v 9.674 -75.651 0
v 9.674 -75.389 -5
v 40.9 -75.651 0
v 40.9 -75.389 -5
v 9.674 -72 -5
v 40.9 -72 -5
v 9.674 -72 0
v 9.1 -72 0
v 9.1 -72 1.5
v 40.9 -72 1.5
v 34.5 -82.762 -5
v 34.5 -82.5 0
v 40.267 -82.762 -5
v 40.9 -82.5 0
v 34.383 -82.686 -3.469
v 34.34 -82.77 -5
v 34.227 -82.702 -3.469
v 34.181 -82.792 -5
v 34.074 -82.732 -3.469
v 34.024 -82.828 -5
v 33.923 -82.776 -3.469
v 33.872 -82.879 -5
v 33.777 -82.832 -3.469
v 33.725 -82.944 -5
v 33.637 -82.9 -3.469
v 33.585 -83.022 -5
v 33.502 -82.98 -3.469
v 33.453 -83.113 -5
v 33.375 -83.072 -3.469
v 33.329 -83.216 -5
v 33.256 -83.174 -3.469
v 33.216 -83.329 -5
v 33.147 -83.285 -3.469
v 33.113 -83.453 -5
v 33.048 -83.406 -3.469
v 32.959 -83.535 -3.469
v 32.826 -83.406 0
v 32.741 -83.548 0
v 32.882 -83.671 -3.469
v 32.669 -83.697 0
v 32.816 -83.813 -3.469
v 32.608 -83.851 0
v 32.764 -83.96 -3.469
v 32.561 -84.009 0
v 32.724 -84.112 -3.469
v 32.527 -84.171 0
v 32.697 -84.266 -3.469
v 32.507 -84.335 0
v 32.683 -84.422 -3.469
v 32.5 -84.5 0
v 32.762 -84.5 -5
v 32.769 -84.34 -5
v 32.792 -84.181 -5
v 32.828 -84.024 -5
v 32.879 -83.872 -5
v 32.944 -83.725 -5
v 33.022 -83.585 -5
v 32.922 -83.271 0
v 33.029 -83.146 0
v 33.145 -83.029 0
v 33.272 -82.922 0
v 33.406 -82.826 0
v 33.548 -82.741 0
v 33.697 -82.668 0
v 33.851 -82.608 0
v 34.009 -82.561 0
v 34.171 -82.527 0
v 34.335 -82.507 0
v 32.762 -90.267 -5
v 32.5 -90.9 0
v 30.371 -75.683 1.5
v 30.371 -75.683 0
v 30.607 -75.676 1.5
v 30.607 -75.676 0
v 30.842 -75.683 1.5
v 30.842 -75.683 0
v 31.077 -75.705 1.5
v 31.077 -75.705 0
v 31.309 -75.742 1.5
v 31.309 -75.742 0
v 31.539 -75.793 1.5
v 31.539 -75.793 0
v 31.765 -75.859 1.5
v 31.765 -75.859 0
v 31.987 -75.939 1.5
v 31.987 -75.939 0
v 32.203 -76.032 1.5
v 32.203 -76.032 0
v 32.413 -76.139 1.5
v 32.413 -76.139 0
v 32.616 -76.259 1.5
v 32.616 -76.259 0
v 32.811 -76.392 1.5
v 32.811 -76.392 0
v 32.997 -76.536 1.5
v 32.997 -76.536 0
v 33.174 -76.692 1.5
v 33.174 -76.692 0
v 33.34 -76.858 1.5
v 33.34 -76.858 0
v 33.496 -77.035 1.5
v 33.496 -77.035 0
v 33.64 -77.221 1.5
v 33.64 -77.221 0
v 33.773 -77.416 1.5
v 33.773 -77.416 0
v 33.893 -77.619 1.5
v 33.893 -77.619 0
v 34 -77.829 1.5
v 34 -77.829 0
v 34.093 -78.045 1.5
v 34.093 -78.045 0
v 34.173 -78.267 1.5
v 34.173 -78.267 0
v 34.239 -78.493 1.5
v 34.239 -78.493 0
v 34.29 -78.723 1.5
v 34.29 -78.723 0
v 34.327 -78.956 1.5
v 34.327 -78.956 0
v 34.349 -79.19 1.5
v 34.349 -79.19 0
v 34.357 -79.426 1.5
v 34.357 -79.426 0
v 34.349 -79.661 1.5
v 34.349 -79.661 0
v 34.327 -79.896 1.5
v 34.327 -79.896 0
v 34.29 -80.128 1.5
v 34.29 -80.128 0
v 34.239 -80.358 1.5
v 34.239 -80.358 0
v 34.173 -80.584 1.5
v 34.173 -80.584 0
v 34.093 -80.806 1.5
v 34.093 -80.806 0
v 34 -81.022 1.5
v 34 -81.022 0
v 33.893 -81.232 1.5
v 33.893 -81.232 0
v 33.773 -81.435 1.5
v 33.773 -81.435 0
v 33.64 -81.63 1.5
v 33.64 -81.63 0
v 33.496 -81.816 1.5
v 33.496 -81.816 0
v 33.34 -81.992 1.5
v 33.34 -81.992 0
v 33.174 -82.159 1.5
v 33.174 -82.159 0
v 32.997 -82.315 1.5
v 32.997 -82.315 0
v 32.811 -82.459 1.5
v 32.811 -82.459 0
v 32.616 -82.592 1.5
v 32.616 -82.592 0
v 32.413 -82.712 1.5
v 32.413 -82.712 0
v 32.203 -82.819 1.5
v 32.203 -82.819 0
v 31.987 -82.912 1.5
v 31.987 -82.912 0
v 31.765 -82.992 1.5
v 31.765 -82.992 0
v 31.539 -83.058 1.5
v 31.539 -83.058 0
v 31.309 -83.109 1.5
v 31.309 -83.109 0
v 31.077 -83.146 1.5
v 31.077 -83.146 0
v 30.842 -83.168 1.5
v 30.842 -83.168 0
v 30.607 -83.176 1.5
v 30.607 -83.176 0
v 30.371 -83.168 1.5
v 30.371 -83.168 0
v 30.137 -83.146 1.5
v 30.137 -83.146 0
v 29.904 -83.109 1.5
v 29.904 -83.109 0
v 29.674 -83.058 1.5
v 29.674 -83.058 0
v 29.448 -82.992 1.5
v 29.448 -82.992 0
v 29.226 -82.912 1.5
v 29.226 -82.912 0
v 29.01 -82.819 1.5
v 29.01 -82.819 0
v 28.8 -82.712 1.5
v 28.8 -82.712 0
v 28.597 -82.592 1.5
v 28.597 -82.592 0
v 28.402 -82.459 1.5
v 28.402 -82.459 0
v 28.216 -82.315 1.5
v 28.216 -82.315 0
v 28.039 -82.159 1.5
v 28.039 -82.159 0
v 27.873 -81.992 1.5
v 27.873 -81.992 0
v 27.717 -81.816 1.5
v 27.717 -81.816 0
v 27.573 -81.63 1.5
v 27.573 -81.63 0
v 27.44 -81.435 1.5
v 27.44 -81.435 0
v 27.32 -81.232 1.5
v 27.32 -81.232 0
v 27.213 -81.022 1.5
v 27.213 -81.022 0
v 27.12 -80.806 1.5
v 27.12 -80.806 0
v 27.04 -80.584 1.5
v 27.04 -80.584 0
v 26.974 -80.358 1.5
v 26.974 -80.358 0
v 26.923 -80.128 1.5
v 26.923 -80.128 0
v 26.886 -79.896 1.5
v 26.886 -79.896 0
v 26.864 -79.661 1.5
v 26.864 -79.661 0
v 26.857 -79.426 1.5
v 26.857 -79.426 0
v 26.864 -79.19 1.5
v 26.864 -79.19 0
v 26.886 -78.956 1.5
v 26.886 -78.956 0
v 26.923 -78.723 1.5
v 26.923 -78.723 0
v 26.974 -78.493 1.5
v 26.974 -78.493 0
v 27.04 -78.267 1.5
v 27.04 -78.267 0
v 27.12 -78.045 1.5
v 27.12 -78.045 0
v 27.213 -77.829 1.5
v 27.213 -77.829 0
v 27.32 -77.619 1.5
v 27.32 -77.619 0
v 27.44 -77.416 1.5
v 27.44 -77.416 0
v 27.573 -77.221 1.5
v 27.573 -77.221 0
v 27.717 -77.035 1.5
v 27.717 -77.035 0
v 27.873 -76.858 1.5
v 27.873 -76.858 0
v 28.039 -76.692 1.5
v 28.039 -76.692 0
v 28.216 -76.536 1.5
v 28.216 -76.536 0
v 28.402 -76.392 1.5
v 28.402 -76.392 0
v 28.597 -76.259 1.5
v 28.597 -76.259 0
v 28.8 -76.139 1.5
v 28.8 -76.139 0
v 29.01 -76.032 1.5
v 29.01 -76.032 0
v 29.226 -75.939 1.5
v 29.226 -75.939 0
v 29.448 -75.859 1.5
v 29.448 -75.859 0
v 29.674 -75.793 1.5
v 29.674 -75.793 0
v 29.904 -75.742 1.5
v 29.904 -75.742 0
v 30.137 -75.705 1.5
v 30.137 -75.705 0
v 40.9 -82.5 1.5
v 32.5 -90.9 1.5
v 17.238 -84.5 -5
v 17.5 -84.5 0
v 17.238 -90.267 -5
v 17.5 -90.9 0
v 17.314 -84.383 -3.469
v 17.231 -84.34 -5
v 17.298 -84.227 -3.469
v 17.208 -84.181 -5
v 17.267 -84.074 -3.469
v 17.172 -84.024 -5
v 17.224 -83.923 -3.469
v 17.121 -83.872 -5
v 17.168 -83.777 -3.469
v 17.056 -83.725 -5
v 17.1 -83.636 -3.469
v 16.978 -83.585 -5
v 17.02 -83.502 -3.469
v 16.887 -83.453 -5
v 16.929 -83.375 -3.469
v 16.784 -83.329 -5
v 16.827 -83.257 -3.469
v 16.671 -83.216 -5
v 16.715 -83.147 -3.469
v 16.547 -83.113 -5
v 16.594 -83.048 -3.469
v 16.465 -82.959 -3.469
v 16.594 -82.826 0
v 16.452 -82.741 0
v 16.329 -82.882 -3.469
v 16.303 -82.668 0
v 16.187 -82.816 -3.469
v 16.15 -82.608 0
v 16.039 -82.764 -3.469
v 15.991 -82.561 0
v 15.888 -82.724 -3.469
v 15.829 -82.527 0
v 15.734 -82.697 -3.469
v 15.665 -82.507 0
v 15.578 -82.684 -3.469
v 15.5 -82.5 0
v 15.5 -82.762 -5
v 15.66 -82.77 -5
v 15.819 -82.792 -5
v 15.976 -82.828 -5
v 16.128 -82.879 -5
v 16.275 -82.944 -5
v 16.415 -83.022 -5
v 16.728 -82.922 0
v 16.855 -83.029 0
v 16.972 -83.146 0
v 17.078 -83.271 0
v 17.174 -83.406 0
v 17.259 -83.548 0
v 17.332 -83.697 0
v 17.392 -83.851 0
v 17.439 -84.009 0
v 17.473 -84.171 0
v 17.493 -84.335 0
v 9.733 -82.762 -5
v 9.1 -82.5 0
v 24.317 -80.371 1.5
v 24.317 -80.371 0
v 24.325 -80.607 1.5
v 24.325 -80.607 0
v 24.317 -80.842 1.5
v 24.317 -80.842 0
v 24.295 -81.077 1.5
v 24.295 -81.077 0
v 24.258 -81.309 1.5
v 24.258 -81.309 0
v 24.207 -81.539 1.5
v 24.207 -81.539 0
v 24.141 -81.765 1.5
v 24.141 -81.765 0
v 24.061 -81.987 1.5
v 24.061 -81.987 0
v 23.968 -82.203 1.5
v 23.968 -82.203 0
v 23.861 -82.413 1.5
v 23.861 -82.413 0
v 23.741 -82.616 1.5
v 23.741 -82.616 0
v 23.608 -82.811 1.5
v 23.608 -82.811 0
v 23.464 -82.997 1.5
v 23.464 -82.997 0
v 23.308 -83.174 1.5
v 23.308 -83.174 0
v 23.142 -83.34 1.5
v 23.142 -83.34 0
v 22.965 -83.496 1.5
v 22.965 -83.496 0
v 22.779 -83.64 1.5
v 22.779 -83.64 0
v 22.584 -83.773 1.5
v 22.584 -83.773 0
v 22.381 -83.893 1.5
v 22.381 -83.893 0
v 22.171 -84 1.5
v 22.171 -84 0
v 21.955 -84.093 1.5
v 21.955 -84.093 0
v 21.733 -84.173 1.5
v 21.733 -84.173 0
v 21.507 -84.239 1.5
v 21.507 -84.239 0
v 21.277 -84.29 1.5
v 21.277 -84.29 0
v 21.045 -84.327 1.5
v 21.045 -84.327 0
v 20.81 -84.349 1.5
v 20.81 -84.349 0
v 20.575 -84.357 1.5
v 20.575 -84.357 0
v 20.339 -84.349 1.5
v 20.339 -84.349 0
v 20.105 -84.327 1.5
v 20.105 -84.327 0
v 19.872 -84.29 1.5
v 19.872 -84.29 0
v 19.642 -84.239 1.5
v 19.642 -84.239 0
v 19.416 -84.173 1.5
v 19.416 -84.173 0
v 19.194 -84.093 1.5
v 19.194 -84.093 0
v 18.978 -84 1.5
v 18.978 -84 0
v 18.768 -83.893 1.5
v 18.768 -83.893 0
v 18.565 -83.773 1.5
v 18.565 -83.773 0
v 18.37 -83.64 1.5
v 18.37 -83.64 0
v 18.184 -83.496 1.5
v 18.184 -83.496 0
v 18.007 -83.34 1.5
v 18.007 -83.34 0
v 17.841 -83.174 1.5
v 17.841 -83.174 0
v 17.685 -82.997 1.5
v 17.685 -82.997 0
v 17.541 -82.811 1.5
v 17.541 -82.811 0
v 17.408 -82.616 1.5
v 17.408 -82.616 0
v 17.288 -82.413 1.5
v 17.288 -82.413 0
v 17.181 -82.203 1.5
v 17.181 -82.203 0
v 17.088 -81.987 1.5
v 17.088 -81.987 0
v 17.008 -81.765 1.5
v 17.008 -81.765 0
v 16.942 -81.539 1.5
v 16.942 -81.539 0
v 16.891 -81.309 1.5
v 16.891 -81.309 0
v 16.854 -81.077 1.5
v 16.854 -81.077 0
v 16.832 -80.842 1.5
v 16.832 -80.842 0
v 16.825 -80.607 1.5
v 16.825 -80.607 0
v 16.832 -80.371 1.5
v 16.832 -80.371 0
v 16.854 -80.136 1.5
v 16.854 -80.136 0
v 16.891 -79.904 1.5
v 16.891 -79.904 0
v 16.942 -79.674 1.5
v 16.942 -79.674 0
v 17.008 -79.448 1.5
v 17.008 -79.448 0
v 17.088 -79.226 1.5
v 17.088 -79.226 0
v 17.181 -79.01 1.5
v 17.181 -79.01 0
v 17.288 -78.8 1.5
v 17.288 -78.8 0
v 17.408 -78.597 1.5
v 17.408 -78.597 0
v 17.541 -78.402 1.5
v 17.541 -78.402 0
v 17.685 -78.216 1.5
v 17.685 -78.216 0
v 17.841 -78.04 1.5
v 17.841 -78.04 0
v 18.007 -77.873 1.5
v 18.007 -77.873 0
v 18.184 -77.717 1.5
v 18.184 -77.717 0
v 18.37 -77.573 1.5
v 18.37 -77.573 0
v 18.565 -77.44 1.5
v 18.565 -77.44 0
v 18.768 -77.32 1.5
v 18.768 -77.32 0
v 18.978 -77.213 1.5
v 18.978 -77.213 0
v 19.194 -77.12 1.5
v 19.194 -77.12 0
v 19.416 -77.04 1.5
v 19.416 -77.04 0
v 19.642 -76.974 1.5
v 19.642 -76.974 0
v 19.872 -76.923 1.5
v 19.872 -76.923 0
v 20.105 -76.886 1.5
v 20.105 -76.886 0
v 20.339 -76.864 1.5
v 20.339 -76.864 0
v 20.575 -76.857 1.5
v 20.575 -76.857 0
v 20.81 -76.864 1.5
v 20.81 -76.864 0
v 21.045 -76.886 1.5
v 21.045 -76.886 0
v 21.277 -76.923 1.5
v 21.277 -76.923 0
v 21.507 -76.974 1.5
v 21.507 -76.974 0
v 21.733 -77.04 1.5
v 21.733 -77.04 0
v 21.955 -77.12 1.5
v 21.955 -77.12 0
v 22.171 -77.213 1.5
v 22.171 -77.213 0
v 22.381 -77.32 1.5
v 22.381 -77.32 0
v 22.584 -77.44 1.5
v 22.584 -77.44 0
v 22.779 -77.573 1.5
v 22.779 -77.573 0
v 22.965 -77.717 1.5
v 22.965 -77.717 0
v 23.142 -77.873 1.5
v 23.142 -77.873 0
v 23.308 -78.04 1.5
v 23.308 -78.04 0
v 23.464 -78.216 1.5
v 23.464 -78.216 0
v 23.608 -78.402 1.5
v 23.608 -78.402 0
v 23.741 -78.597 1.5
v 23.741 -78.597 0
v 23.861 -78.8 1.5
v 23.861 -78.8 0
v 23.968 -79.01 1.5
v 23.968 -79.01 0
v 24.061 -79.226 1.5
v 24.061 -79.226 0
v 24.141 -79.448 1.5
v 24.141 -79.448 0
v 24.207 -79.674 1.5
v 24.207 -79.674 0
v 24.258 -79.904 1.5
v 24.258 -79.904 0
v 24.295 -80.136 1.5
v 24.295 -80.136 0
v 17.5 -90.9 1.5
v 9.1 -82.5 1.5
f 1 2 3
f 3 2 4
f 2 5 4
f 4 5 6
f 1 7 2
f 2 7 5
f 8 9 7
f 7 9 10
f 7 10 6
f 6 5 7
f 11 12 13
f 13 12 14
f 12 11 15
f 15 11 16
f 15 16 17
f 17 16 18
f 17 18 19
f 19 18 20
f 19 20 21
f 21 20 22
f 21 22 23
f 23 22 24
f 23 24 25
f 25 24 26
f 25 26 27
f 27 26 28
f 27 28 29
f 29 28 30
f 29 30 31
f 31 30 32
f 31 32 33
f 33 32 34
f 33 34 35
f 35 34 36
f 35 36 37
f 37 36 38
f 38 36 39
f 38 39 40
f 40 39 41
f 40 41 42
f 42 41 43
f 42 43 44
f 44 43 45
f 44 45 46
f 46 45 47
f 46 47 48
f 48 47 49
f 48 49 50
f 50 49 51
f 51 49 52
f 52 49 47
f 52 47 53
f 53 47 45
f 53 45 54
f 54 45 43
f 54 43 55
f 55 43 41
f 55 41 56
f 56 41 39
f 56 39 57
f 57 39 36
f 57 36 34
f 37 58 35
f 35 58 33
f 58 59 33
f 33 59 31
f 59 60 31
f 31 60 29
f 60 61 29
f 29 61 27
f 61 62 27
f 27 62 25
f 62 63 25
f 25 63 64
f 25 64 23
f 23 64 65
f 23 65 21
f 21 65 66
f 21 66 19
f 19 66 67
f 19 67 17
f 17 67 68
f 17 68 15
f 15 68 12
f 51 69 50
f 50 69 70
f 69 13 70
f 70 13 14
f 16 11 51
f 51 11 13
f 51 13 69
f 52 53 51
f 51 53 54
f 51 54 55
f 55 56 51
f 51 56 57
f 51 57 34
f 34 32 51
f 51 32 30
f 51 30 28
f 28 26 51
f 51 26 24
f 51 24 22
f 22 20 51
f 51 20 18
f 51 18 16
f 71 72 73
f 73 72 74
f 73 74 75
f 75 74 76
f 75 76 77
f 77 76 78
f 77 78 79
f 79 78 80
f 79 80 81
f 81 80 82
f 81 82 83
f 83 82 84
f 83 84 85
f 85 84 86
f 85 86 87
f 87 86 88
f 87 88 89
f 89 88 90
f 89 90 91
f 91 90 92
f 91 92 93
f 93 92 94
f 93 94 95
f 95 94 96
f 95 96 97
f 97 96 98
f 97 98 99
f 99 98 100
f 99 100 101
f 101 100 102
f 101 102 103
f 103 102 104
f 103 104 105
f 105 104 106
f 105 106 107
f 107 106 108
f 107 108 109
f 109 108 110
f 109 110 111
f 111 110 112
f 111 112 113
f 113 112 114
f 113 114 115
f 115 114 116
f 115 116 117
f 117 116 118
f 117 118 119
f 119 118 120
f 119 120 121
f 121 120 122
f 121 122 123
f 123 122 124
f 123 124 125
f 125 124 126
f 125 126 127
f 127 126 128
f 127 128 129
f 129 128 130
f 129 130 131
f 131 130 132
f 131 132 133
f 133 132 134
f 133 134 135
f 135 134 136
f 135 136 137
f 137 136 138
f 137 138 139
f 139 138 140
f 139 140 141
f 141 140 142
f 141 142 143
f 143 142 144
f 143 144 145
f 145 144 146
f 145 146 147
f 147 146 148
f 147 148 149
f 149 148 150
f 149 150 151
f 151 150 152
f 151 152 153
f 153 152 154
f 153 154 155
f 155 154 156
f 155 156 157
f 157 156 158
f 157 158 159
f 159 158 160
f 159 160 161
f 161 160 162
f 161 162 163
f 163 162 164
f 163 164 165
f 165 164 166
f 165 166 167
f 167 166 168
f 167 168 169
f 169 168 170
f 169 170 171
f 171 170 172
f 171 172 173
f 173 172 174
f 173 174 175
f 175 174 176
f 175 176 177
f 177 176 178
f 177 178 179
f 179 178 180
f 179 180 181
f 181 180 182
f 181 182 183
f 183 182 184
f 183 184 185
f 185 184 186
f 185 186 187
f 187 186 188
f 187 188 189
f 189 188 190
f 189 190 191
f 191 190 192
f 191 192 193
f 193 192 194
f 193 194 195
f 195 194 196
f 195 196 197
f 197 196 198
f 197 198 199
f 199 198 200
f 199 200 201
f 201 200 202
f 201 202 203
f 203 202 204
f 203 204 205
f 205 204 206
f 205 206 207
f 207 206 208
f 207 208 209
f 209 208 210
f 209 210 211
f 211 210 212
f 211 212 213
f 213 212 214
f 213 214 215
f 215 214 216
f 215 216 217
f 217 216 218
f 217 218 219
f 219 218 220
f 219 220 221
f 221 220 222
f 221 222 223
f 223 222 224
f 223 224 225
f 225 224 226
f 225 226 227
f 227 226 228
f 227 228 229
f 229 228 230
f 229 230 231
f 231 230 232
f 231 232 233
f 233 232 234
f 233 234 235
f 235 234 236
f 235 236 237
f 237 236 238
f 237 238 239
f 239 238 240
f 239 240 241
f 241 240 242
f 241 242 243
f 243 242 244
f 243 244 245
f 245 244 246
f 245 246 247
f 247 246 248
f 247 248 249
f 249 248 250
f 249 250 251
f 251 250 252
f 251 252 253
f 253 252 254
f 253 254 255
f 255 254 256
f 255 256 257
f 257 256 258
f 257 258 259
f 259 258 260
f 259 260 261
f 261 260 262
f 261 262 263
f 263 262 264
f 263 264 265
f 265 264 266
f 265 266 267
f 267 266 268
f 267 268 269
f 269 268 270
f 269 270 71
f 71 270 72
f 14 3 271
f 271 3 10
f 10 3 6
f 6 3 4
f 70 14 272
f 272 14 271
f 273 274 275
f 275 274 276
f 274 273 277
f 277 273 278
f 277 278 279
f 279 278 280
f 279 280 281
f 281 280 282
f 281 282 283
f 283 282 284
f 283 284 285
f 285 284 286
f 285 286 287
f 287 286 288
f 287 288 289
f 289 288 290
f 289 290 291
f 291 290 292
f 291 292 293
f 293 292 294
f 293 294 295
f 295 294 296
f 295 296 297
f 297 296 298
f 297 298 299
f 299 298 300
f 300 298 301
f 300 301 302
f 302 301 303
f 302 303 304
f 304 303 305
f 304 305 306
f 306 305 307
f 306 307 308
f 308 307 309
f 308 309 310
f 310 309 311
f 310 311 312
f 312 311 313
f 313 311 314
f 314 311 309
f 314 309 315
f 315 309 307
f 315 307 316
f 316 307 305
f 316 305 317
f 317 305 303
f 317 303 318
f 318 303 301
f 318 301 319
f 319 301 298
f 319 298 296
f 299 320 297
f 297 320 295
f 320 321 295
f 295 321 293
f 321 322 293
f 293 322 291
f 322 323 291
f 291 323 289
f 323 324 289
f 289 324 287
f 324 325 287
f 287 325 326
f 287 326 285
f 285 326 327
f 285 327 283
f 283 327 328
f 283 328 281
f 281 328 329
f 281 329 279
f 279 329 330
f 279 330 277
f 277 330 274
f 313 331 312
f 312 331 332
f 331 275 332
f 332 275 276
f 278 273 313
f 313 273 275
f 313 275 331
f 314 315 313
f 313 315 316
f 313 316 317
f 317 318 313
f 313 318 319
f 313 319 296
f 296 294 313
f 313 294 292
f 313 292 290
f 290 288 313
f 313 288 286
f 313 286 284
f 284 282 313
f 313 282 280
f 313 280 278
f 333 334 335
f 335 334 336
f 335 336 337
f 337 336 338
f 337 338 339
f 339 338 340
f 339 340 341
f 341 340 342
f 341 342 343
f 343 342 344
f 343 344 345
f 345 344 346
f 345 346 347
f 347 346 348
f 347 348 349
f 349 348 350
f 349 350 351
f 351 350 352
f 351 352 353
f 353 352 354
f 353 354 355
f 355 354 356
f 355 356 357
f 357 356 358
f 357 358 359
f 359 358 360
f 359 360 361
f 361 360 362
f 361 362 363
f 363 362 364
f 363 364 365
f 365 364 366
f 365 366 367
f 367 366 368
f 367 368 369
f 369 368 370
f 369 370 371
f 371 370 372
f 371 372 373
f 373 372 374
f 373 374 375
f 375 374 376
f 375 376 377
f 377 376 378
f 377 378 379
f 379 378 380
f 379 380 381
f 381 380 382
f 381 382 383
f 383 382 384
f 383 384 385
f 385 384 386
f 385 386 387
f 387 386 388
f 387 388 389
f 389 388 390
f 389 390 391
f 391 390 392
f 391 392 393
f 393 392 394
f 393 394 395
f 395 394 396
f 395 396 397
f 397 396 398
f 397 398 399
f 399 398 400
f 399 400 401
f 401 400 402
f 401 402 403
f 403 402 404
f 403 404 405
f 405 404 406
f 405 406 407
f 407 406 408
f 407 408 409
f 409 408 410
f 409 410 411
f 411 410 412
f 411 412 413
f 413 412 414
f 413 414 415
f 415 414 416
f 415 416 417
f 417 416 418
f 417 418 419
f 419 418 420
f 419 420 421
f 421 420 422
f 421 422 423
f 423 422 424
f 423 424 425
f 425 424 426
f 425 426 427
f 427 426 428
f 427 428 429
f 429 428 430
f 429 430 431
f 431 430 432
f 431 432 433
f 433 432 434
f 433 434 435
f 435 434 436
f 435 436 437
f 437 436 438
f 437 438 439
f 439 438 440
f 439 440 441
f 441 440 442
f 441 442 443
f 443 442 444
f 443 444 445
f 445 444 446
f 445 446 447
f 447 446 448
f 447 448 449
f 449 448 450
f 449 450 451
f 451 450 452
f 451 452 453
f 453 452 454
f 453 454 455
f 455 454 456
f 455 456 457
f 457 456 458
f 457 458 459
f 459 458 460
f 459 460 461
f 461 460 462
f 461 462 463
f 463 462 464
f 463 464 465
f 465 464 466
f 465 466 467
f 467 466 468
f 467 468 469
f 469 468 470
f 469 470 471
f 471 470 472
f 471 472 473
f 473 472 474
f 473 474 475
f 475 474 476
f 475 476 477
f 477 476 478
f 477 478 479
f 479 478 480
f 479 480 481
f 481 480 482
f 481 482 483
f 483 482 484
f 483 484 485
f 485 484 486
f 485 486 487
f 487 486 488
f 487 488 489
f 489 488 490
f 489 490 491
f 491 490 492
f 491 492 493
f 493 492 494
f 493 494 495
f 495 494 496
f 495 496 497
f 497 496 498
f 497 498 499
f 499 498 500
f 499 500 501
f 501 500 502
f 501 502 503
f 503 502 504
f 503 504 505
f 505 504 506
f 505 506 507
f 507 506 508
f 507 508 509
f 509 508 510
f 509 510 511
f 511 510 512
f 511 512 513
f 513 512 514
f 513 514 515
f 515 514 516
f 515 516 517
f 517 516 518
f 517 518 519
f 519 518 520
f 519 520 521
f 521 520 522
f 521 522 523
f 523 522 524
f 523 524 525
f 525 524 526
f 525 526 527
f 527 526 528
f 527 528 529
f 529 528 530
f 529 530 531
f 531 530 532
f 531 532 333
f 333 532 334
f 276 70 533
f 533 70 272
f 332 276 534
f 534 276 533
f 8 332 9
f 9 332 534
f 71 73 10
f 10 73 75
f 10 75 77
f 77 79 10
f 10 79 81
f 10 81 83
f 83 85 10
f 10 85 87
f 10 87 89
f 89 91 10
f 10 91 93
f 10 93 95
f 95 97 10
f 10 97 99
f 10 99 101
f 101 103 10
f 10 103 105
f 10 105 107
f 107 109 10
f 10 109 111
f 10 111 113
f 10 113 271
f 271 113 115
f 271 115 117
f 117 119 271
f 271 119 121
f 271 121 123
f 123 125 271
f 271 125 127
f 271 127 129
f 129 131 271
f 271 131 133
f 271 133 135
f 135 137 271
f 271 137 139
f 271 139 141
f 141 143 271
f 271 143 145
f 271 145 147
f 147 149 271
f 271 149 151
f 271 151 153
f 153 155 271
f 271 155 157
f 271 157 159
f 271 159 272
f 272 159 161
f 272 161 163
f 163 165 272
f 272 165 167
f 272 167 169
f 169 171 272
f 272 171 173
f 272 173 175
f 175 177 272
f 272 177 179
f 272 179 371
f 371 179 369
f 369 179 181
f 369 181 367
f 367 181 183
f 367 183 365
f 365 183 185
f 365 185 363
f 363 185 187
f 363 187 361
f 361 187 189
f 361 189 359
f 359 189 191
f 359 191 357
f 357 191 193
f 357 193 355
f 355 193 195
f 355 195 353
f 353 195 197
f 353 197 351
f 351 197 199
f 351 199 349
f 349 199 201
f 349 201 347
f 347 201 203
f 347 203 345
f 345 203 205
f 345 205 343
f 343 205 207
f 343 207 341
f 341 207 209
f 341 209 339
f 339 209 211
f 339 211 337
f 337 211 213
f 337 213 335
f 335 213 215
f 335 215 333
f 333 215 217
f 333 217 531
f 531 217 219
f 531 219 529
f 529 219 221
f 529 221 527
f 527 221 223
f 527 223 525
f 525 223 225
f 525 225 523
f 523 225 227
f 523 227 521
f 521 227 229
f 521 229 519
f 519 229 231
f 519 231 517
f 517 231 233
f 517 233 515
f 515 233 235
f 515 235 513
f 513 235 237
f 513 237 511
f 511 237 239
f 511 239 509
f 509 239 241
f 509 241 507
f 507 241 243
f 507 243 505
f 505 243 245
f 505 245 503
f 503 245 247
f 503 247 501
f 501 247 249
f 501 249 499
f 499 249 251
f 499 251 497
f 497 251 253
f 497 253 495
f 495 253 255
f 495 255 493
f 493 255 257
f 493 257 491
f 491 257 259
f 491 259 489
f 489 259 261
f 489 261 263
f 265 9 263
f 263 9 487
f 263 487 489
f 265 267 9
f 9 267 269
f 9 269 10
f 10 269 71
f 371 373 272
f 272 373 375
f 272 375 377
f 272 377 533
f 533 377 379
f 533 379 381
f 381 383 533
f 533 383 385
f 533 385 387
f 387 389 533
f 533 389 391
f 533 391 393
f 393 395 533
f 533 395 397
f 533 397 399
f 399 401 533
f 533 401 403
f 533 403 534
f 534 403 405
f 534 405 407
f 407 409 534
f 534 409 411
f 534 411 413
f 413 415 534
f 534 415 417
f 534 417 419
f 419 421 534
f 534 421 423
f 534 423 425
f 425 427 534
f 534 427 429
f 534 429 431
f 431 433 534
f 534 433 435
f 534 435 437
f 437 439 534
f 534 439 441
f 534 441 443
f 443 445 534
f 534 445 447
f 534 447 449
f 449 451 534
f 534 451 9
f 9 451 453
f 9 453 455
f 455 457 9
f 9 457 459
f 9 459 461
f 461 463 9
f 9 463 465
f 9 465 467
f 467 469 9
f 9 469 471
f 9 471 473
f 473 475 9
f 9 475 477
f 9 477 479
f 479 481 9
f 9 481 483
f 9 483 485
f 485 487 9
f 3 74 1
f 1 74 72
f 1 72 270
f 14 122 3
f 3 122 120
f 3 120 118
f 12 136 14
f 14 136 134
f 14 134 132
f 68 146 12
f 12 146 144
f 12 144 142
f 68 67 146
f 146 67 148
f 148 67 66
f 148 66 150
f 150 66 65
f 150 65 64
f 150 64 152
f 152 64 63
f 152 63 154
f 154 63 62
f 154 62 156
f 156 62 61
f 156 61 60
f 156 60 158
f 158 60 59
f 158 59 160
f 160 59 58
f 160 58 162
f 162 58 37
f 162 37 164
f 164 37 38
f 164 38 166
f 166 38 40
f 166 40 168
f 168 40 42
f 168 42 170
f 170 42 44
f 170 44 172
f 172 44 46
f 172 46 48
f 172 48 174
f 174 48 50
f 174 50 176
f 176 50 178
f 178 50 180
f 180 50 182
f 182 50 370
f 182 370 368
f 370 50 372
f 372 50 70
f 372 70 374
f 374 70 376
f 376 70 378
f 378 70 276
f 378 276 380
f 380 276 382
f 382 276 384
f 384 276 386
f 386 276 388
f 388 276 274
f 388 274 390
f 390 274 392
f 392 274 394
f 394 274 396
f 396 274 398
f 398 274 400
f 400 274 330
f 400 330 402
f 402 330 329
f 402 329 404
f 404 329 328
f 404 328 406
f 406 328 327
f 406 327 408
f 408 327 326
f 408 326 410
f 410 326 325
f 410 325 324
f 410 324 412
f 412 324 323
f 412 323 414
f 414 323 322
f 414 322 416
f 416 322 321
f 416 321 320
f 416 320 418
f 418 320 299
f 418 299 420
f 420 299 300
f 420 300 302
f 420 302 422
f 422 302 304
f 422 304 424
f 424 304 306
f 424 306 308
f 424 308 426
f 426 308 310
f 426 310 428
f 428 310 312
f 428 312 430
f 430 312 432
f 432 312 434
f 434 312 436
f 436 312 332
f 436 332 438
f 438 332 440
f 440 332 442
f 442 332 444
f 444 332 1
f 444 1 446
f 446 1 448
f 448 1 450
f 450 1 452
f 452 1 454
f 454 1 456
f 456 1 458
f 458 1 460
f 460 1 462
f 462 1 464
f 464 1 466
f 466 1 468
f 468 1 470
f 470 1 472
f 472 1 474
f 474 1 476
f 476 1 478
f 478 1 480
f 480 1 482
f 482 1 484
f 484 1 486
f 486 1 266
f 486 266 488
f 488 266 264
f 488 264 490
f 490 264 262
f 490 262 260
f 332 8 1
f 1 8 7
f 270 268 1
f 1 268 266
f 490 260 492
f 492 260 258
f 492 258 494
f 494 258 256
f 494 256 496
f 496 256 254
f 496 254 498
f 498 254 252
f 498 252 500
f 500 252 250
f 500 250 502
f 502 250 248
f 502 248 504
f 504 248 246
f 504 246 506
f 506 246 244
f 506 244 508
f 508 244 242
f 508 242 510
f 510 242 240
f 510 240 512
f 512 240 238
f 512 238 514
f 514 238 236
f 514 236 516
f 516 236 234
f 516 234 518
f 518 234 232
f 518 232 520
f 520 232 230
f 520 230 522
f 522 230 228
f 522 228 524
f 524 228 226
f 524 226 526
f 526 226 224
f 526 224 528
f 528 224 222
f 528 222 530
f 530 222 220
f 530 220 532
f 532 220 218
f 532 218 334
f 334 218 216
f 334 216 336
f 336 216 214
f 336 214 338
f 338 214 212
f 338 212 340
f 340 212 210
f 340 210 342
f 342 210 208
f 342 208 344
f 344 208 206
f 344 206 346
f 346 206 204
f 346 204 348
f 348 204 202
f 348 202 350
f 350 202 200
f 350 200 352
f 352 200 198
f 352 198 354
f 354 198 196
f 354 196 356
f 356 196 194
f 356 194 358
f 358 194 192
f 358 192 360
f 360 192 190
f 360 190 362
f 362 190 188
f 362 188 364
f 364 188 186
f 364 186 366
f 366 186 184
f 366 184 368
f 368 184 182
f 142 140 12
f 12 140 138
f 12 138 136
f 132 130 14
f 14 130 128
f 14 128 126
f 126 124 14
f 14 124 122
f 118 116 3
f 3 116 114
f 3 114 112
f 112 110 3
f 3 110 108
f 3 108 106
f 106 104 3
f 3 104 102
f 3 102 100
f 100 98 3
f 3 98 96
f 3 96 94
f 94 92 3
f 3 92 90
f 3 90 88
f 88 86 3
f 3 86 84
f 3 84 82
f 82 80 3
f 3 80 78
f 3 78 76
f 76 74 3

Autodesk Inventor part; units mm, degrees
ref_plane "YZ Plane" through (0, 0, 0) normal (1, 0, 0) x (0, 1, 0)
ref_plane "XZ Plane" through (0, 0, 0) normal (0, 1, 0) x (-1, 0, 0)
ref_plane "Work Plane1" through (50, -100, 0) normal (0, 0, 1) x (1, 0, 0)
sketch "Sketch1" plane through (50, -100, 0) normal (0, 0, 1) x (1, 0, 0)
  line L0 (-9.1, 25) -> (-9.1, 17.5) construction
  line L1 (-9.1, 25) -> (-25, 25) construction
  line L2 (-25, 25) -> (-25, 9.1) construction
  line L3 (-17.5, 9.1) -> (-25, 9.1) construction
  line L4 (-17.5, 9.1) -> (-17.5, 15.5) construction
  arc A0 (-15.5, 17.5) -> (-17.5, 15.5) centre (-15.5, 15.5) ccw construction
  line L5 (-15.5, 17.5) -> (-9.1, 17.5) construction
  circle A1 centre (-20, 20) radius 2.2989 construction
  line L6 (-40.9, 17.5) -> (-40.9, 25)
  line L7 (-40.9, 17.5) -> (-34.5, 17.5) construction
  arc A2 (-32.5, 15.5) -> (-34.5, 17.5) centre (-34.5, 15.5) ccw construction
  line L8 (-32.5, 15.5) -> (-32.5, 9.1) construction
  line L9 (-25, 9.1) -> (-32.5, 9.1)
  line L10 (-25, 9.1) -> (-25, 25) construction
  line L11 (-25, 25) -> (-40.9, 25) construction
  circle A3 centre (-30, 20) radius 2.2989 construction
  line L12 (-40.9, 25) -> (-40.9, 32.5) construction
  line L13 (-40.9, 25) -> (-25, 25)
  line L14 (-25, 25) -> (-25, 40.9) construction
  line L15 (-32.5, 40.9) -> (-25, 40.9) construction
  line L16 (-32.5, 40.9) -> (-32.5, 34.5) construction
  arc A4 (-34.5, 32.5) -> (-32.5, 34.5) centre (-34.5, 34.5) ccw construction
  line L17 (-34.5, 32.5) -> (-40.9, 32.5) construction
  circle A5 centre (-30, 30) radius 2.2989 construction
  circle A6 centre (-20, 30) radius 2.2989 construction
  line L18 (-25, 40.9) -> (-17.5, 40.9) construction
  line L19 (-25, 40.9) -> (-25, 25) construction
  line L20 (-25, 25) -> (-9.1, 25) construction
  line L21 (-9.1, 32.5) -> (-9.1, 25) construction
  line L22 (-9.1, 32.5) -> (-15.5, 32.5) construction
  arc A7 (-17.5, 34.5) -> (-15.5, 32.5) centre (-15.5, 34.5) ccw construction
  line L23 (-17.5, 34.5) -> (-17.5, 40.9) construction
  line L24 (-25, 9.1) -> (-32.5, 9.1)
  line L25 (-40.9, 17.5) -> (-32.5, 9.1)
  line L26 (-40.9, 17.5) -> (-40.9, 25)
  line L27 (-25, 25) -> (-40.9, 25)
  line L28 (-25, 9.1) -> (-25, 25)
  arc A8 (-32.5755, 19.3934) -> (-26.2755, 19.3934) centre (-29.4255, 19.3934) ccw projected
  circle A9 centre (-29.4255, 19.3934) radius 3.75
  line L29 (-40.9, 17.5) -> (-40.9, 25) projected
  line L30 (-25, 9.1) -> (-32.5, 9.1) projected
  line L31 (-40.9, 25) -> (-25, 25) projected
  point P0 (-50, 100)
  dimension "d0" = 7.5
extrude "Extrusion1" add sketch "Sketch1" along normal blind 1.5
sketch "Sketch2" plane through (50, -100, 0) normal (0, 0, -1) x (-1, 0, 0)
  circle A0 centre (29.4255, 19.3934) radius 3.75 projected
  line L0 (25, 25) -> (40.9, 25) projected
  line L1 (25, 9.1) -> (25, 25) projected
  line L2 (32.5, 9.1) -> (25, 9.1) projected
  line L3 (40.9, 17.5) -> (32.5, 9.1) projected
  line L4 (40.9, 25) -> (40.9, 17.5) projected
  line L5 (32.5, -15.5) -> (32.5, 15.5) projected
  arc A1 (34.5, 17.5) -> (32.5, 15.5) centre (34.5, 15.5) ccw projected
  line L6 (34.5, 17.5) -> (65.5, 17.5) projected
  line L7 (65.9987, 17.7) -> (34.5, 17.7)
  arc A2 (34.5, 17.7) -> (32.3, 15.5) centre (34.5, 15.5) ccw
  line L8 (32.3, 15.5) -> (32.3, -15.5)
  line L9 (40.9, 17.5) -> (32.5, 9.1) projected
  point P0 (50, 100)
  point P1 (41.1, 17.7)
  point P2 (32.3, 8.9)
  dimension "d9" = 0.2
extrude "Extrusion2" add sketch "Sketch2" along normal blind 5 draft -3 contours L3 L5 A1 L6
pattern_circular "Circular Pattern1" count 2 over 90 about axis through (25, -75, 0) along (0, 0, 1) of "Extrusion1", "Extrusion2"
sketch "Sketch3" plane through (50, -100, 1.5) normal (0, 0, 1) x (1, 0, 0)
  circle A0 centre (-19.3934, 20.5745) radius 3.75 projected
  circle A1 centre (-29.4255, 19.3934) radius 3.75 projected
  line L0 (-9.1, 25) -> (-40.9, 25) projected
  line L1 (-40.9, 25) -> (-40.9, 17.5) projected
  line L2 (-40.9, 17.5) -> (-32.5, 9.1) projected
  line L3 (-32.5, 9.1) -> (-17.5, 9.1) projected
  line L4 (-17.5, 9.1) -> (-9.1, 17.5) projected
  line L5 (-9.1, 17.5) -> (-9.1, 25) projected
  line L6 (-40.9, 25) -> (-9.1, 25)
  line L7 (-9.1, 25) -> (-9.1, 28)
  line L8 (-9.1, 28) -> (-40.9, 28)
  line L9 (-40.9, 28) -> (-40.9, 25)
  point P0 (-50, 100)
  dimension "d10" = 3
ref_plane "Work Plane2" through (25.5745, -91.5066, 0) normal (0, 0, 1) x (1, 0, 0)
extrude "Extrusion3" add sketch "Sketch3" against normal up to surface (1.5 mm away) contours L0 L9 L8 L7
sketch "Sketch4" plane through (40.9, -82.5, 1.5) normal (1, 0, 0) x (0, 0, -1)
  line L0 (1.5, 6.8934) -> (9.5, 6.8934) construction
  line L1 (6.5, -7.7674) -> (6.5, -0.262) projected
  line L2 (1.5, 0) -> (1.5, 10.5) construction
  line L3 (1.5, 10.5) -> (6.5, 10.5) construction
  line L4 (0, 10.5) -> (1.5, 10.5) projected
  line L5 (1.5, 10.5) -> (6.5, 10.5)
  line L6 (1.5, 10.5) -> (1.5, 6.6716)
  line L7 (6.5, 10.5) -> (6.5, 7.1108) construction
  line L8 (6.5, 7.1108) -> (1.5, 6.8487)
  line L9 (1.5, 6.8487) -> (1.5, 10.5)
  line L10 (6.5, 10.5) -> (6.5, 7.1108)
  point P0 (1.5, 82.5)
  dimension "d16" = 93
extrude "Extrusion4" add sketch "Sketch4" against normal up to surface (31.2255 mm away)
properties part number "30_Baseplate_Connector_Clamp"
